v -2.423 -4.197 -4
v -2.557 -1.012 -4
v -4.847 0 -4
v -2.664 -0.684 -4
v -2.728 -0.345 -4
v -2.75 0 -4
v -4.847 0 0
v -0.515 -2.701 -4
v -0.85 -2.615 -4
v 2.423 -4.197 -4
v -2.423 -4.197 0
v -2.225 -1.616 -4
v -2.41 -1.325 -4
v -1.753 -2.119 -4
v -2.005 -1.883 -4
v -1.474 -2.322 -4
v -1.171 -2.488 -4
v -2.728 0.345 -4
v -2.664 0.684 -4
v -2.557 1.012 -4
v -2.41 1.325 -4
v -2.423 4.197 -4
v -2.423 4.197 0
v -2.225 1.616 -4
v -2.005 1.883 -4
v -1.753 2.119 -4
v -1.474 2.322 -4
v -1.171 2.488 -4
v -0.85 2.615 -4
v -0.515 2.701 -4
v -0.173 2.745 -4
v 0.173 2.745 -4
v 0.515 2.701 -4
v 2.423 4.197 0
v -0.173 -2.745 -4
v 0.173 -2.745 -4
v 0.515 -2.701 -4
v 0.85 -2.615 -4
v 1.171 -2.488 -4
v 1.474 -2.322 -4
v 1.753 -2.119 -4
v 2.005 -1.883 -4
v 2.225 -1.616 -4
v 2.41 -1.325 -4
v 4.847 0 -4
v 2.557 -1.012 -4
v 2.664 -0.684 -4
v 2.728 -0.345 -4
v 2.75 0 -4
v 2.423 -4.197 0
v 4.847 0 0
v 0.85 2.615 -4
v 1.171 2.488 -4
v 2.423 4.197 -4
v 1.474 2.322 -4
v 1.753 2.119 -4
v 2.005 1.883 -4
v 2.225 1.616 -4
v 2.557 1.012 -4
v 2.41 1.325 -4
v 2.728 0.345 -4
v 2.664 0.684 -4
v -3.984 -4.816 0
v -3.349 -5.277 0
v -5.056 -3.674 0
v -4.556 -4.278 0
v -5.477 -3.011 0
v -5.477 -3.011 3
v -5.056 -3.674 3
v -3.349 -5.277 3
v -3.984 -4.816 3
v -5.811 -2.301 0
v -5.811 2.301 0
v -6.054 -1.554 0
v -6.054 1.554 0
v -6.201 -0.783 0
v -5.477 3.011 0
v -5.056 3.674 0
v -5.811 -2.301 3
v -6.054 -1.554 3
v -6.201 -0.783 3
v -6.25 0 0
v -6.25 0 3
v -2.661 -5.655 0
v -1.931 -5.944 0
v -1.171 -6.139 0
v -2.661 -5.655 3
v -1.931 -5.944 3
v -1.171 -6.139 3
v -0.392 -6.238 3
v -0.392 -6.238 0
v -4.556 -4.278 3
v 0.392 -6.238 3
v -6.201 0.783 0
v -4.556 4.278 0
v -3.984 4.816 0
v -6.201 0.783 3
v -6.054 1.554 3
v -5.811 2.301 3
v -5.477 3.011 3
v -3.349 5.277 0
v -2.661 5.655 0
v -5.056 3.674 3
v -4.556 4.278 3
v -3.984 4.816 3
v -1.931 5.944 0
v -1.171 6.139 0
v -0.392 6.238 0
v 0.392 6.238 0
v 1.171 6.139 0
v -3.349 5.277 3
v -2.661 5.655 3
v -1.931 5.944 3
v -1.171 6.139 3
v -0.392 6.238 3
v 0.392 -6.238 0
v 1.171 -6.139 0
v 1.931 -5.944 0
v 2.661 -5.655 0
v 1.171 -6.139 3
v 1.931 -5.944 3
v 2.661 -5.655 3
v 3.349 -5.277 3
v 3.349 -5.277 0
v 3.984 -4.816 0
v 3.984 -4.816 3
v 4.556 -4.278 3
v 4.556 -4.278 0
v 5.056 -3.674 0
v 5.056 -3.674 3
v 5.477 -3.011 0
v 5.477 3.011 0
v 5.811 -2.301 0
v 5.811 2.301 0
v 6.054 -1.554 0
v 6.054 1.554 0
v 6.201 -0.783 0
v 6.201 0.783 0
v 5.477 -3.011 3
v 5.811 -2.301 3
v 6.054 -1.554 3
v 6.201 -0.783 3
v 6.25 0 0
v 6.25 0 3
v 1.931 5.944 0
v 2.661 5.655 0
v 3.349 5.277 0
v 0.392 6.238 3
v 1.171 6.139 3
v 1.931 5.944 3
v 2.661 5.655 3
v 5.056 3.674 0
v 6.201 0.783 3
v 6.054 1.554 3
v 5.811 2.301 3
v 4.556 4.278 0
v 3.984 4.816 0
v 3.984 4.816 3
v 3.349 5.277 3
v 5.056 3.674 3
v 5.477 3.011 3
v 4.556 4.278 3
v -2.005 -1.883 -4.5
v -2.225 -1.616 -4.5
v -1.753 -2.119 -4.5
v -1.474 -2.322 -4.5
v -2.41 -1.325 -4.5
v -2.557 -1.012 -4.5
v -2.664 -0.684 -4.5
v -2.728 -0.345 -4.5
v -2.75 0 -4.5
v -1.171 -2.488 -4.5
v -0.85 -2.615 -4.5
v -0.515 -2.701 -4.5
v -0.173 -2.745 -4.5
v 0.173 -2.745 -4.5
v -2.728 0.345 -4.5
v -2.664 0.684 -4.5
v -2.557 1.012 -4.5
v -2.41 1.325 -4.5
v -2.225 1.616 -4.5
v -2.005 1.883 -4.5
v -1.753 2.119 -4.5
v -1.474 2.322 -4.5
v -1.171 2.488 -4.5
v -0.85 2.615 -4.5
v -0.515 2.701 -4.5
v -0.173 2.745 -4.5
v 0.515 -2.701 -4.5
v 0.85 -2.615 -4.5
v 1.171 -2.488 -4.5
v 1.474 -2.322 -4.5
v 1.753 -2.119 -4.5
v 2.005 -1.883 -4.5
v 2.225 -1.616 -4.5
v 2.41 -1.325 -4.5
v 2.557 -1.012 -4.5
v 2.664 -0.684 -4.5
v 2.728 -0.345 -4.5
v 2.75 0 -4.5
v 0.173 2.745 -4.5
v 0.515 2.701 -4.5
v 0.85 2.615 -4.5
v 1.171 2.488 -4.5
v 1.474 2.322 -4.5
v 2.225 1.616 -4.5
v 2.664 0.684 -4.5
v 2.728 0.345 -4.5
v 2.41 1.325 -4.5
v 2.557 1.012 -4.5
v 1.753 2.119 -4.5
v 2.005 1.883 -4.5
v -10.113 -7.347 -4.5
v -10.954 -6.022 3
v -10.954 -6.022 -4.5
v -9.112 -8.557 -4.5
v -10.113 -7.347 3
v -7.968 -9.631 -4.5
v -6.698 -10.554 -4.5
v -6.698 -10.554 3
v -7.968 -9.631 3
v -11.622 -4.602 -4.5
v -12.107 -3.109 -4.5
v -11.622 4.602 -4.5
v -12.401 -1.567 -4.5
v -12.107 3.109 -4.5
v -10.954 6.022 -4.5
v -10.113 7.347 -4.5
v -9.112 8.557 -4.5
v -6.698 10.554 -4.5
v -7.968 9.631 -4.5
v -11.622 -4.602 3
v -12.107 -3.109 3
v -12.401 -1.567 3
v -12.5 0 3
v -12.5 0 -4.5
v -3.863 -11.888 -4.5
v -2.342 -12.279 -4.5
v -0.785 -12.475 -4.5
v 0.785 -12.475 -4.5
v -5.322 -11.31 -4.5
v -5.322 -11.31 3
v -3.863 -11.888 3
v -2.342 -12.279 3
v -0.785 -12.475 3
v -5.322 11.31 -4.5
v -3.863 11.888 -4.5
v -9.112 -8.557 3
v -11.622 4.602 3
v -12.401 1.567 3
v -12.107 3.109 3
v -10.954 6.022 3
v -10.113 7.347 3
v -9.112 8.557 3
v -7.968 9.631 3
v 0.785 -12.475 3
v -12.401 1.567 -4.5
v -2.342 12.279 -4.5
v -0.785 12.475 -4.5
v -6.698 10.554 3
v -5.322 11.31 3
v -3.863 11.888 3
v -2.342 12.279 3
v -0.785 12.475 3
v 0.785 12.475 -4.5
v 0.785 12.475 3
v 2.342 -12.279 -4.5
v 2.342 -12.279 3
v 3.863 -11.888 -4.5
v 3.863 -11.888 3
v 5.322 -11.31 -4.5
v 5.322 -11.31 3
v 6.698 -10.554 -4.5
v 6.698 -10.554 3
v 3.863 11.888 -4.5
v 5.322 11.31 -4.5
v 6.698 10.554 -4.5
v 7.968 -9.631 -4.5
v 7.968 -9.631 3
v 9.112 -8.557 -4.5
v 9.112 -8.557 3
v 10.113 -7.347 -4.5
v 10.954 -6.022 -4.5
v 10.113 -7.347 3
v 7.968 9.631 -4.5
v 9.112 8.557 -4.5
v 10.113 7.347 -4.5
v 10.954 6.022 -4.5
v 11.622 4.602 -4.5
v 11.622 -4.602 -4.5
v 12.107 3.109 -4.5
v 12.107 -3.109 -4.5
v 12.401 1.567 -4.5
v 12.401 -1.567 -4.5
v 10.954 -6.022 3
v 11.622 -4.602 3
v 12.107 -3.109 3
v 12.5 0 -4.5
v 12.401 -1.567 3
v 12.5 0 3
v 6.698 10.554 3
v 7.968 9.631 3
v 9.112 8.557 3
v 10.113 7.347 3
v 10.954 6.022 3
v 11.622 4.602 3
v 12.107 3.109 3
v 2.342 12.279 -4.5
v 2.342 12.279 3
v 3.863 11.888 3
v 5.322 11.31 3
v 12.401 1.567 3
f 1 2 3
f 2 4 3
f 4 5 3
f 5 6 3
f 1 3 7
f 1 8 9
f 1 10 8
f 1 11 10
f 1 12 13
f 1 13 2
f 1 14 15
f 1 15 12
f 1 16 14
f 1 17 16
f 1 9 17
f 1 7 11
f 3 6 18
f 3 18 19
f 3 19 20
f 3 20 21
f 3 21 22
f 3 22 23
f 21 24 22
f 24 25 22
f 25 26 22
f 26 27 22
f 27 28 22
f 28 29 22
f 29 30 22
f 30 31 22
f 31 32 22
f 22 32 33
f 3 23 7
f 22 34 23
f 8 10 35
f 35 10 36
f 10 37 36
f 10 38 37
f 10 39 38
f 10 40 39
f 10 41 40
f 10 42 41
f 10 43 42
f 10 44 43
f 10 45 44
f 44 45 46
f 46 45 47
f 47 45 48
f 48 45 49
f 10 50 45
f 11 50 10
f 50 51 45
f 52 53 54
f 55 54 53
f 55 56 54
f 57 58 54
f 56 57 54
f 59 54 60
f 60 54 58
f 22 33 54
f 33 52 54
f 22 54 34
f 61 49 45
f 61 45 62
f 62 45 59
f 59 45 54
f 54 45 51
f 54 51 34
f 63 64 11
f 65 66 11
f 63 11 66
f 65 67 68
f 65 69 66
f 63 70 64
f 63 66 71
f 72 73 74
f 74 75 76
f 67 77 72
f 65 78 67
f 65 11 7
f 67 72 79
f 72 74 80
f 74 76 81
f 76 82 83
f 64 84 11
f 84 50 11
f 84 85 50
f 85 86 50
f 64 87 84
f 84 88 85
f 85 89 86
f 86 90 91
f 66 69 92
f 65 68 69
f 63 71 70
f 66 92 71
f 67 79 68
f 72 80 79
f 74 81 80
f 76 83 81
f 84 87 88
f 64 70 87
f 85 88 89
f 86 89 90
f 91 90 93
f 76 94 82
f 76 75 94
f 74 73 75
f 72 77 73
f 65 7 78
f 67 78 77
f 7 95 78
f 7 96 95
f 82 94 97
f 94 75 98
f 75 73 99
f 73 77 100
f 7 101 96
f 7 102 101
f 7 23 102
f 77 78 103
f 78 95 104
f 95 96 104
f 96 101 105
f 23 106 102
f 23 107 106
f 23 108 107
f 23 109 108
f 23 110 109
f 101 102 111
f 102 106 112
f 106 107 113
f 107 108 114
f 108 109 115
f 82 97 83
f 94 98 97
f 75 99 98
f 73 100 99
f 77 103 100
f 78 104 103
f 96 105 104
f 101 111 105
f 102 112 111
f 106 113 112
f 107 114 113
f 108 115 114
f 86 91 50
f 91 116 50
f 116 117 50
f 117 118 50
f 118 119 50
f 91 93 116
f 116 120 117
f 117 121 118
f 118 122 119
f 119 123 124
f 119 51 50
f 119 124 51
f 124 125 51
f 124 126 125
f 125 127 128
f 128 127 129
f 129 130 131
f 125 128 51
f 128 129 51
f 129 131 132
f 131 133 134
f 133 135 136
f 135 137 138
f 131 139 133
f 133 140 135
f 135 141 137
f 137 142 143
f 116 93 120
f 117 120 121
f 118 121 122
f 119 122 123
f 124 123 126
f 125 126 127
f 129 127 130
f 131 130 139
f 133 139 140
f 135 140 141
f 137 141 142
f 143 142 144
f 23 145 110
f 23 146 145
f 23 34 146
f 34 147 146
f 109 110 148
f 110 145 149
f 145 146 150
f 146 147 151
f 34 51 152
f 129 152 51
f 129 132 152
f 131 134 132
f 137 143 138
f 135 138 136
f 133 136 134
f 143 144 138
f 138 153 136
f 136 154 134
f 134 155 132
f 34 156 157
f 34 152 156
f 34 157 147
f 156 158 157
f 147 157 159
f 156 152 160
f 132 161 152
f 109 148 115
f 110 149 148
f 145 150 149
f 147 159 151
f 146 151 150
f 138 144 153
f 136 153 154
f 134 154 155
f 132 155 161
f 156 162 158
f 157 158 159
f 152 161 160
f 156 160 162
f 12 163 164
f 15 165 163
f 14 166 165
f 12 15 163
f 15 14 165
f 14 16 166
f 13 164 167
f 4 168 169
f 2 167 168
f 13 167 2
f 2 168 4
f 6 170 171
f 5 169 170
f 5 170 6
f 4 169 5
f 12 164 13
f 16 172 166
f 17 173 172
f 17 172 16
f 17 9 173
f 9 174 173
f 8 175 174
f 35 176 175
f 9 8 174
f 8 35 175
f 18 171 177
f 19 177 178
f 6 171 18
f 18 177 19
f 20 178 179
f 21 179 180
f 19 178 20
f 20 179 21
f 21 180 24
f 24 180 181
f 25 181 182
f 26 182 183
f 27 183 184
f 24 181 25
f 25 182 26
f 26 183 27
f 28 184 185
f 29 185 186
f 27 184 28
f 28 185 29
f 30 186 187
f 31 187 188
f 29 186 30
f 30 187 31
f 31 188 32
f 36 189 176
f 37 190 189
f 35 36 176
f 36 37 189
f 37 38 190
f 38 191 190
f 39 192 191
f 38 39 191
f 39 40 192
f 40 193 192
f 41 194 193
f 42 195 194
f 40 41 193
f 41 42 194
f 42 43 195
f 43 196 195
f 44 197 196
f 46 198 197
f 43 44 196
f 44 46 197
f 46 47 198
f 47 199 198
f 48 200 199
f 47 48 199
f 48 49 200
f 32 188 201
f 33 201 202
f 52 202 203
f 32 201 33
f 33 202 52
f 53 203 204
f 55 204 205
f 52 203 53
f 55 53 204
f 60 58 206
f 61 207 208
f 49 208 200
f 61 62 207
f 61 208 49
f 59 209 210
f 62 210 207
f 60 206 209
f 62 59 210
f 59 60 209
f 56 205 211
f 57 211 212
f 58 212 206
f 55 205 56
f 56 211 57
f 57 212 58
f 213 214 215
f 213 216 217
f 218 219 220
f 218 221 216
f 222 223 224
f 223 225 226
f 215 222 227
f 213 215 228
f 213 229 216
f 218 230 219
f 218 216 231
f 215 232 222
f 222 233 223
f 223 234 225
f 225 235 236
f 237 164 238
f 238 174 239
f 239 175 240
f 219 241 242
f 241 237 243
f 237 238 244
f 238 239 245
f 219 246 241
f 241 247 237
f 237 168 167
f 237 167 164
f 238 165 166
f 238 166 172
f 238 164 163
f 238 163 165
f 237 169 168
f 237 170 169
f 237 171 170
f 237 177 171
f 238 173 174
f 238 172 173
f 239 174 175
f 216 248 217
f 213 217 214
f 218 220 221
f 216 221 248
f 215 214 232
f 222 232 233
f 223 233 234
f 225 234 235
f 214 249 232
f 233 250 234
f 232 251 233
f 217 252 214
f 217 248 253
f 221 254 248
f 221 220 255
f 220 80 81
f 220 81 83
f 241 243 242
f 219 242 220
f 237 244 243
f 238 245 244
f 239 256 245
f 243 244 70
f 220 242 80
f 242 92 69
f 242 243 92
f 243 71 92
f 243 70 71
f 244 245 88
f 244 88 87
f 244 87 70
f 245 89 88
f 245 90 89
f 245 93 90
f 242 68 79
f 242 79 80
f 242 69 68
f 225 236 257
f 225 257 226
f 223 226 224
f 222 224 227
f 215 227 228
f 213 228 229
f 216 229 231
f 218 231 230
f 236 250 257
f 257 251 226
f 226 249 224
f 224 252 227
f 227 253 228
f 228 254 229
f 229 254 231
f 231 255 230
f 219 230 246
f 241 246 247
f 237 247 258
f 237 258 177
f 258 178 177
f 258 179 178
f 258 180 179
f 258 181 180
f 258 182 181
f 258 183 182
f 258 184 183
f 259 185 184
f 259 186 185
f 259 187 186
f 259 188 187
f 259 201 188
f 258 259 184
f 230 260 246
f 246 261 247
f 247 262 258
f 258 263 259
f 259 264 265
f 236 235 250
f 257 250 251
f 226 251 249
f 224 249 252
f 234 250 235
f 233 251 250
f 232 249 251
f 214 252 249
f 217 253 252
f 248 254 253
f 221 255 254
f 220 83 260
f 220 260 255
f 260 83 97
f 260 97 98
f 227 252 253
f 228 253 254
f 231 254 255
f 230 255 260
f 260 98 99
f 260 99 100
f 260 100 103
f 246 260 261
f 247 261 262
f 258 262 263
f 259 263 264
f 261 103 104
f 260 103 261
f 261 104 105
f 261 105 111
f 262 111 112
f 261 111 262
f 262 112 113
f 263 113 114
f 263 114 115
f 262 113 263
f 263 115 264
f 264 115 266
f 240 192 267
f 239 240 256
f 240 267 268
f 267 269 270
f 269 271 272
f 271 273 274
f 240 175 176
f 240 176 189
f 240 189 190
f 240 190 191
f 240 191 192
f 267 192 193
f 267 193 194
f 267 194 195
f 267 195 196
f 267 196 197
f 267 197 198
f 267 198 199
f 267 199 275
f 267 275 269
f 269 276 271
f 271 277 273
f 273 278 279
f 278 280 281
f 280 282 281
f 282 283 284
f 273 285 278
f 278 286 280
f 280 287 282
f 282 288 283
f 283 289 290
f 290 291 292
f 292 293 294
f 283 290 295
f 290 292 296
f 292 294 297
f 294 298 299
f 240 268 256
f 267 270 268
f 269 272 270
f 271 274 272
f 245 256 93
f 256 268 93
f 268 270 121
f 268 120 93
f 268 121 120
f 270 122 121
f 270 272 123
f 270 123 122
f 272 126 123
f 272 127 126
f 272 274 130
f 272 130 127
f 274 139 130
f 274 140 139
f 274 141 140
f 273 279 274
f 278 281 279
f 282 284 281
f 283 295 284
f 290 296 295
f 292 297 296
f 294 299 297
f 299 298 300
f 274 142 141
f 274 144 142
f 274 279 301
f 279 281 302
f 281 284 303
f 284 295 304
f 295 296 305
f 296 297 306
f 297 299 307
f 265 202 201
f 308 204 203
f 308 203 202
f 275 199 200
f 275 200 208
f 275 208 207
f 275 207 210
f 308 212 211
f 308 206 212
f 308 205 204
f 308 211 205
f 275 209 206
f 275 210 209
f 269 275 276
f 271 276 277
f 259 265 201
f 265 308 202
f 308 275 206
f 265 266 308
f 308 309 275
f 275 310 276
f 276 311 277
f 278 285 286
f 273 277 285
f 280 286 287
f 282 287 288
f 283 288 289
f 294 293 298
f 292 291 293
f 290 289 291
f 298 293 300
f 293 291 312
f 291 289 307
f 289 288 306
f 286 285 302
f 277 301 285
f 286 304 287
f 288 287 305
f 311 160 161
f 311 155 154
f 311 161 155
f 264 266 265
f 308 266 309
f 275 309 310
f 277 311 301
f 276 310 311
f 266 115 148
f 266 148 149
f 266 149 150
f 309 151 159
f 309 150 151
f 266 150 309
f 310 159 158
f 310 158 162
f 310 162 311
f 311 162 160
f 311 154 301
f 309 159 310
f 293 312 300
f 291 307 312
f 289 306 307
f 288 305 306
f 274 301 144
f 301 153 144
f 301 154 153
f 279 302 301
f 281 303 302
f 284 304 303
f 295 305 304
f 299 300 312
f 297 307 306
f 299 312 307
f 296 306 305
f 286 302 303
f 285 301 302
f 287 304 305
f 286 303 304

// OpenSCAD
$fn = 50;

difference() {
	union() {
		translate(v = [0, 0, -4.5]) {
			cylinder(h = 7.5, r = 12.5);
		}
	}
	union() {
		translate(v = [0, 0, 0]) {
			rotate(a = [0, 0, 0]) {
				difference() {
					union() {
						translate(v = [0, 0, -4]) {
							linear_extrude(height = 4) {
								polygon(points = [[4.8468, 0.0], [2.4234000000000004, 4.197451927062417], [-2.423399999999999, 4.197451927062417], [-4.8468, 5.935618106107392e-16], [-2.423400000000002, -4.197451927062416], [2.423399999999997, -4.197451927062419]]);
							}
						}
					}
					union();
				}
			}
		}
		#cylinder(h = 3, r = 6.25);
		#translate(v = [0, 0, -100.0]) {
			cylinder(h = 200, r = 2.75);
		}
	}
}
